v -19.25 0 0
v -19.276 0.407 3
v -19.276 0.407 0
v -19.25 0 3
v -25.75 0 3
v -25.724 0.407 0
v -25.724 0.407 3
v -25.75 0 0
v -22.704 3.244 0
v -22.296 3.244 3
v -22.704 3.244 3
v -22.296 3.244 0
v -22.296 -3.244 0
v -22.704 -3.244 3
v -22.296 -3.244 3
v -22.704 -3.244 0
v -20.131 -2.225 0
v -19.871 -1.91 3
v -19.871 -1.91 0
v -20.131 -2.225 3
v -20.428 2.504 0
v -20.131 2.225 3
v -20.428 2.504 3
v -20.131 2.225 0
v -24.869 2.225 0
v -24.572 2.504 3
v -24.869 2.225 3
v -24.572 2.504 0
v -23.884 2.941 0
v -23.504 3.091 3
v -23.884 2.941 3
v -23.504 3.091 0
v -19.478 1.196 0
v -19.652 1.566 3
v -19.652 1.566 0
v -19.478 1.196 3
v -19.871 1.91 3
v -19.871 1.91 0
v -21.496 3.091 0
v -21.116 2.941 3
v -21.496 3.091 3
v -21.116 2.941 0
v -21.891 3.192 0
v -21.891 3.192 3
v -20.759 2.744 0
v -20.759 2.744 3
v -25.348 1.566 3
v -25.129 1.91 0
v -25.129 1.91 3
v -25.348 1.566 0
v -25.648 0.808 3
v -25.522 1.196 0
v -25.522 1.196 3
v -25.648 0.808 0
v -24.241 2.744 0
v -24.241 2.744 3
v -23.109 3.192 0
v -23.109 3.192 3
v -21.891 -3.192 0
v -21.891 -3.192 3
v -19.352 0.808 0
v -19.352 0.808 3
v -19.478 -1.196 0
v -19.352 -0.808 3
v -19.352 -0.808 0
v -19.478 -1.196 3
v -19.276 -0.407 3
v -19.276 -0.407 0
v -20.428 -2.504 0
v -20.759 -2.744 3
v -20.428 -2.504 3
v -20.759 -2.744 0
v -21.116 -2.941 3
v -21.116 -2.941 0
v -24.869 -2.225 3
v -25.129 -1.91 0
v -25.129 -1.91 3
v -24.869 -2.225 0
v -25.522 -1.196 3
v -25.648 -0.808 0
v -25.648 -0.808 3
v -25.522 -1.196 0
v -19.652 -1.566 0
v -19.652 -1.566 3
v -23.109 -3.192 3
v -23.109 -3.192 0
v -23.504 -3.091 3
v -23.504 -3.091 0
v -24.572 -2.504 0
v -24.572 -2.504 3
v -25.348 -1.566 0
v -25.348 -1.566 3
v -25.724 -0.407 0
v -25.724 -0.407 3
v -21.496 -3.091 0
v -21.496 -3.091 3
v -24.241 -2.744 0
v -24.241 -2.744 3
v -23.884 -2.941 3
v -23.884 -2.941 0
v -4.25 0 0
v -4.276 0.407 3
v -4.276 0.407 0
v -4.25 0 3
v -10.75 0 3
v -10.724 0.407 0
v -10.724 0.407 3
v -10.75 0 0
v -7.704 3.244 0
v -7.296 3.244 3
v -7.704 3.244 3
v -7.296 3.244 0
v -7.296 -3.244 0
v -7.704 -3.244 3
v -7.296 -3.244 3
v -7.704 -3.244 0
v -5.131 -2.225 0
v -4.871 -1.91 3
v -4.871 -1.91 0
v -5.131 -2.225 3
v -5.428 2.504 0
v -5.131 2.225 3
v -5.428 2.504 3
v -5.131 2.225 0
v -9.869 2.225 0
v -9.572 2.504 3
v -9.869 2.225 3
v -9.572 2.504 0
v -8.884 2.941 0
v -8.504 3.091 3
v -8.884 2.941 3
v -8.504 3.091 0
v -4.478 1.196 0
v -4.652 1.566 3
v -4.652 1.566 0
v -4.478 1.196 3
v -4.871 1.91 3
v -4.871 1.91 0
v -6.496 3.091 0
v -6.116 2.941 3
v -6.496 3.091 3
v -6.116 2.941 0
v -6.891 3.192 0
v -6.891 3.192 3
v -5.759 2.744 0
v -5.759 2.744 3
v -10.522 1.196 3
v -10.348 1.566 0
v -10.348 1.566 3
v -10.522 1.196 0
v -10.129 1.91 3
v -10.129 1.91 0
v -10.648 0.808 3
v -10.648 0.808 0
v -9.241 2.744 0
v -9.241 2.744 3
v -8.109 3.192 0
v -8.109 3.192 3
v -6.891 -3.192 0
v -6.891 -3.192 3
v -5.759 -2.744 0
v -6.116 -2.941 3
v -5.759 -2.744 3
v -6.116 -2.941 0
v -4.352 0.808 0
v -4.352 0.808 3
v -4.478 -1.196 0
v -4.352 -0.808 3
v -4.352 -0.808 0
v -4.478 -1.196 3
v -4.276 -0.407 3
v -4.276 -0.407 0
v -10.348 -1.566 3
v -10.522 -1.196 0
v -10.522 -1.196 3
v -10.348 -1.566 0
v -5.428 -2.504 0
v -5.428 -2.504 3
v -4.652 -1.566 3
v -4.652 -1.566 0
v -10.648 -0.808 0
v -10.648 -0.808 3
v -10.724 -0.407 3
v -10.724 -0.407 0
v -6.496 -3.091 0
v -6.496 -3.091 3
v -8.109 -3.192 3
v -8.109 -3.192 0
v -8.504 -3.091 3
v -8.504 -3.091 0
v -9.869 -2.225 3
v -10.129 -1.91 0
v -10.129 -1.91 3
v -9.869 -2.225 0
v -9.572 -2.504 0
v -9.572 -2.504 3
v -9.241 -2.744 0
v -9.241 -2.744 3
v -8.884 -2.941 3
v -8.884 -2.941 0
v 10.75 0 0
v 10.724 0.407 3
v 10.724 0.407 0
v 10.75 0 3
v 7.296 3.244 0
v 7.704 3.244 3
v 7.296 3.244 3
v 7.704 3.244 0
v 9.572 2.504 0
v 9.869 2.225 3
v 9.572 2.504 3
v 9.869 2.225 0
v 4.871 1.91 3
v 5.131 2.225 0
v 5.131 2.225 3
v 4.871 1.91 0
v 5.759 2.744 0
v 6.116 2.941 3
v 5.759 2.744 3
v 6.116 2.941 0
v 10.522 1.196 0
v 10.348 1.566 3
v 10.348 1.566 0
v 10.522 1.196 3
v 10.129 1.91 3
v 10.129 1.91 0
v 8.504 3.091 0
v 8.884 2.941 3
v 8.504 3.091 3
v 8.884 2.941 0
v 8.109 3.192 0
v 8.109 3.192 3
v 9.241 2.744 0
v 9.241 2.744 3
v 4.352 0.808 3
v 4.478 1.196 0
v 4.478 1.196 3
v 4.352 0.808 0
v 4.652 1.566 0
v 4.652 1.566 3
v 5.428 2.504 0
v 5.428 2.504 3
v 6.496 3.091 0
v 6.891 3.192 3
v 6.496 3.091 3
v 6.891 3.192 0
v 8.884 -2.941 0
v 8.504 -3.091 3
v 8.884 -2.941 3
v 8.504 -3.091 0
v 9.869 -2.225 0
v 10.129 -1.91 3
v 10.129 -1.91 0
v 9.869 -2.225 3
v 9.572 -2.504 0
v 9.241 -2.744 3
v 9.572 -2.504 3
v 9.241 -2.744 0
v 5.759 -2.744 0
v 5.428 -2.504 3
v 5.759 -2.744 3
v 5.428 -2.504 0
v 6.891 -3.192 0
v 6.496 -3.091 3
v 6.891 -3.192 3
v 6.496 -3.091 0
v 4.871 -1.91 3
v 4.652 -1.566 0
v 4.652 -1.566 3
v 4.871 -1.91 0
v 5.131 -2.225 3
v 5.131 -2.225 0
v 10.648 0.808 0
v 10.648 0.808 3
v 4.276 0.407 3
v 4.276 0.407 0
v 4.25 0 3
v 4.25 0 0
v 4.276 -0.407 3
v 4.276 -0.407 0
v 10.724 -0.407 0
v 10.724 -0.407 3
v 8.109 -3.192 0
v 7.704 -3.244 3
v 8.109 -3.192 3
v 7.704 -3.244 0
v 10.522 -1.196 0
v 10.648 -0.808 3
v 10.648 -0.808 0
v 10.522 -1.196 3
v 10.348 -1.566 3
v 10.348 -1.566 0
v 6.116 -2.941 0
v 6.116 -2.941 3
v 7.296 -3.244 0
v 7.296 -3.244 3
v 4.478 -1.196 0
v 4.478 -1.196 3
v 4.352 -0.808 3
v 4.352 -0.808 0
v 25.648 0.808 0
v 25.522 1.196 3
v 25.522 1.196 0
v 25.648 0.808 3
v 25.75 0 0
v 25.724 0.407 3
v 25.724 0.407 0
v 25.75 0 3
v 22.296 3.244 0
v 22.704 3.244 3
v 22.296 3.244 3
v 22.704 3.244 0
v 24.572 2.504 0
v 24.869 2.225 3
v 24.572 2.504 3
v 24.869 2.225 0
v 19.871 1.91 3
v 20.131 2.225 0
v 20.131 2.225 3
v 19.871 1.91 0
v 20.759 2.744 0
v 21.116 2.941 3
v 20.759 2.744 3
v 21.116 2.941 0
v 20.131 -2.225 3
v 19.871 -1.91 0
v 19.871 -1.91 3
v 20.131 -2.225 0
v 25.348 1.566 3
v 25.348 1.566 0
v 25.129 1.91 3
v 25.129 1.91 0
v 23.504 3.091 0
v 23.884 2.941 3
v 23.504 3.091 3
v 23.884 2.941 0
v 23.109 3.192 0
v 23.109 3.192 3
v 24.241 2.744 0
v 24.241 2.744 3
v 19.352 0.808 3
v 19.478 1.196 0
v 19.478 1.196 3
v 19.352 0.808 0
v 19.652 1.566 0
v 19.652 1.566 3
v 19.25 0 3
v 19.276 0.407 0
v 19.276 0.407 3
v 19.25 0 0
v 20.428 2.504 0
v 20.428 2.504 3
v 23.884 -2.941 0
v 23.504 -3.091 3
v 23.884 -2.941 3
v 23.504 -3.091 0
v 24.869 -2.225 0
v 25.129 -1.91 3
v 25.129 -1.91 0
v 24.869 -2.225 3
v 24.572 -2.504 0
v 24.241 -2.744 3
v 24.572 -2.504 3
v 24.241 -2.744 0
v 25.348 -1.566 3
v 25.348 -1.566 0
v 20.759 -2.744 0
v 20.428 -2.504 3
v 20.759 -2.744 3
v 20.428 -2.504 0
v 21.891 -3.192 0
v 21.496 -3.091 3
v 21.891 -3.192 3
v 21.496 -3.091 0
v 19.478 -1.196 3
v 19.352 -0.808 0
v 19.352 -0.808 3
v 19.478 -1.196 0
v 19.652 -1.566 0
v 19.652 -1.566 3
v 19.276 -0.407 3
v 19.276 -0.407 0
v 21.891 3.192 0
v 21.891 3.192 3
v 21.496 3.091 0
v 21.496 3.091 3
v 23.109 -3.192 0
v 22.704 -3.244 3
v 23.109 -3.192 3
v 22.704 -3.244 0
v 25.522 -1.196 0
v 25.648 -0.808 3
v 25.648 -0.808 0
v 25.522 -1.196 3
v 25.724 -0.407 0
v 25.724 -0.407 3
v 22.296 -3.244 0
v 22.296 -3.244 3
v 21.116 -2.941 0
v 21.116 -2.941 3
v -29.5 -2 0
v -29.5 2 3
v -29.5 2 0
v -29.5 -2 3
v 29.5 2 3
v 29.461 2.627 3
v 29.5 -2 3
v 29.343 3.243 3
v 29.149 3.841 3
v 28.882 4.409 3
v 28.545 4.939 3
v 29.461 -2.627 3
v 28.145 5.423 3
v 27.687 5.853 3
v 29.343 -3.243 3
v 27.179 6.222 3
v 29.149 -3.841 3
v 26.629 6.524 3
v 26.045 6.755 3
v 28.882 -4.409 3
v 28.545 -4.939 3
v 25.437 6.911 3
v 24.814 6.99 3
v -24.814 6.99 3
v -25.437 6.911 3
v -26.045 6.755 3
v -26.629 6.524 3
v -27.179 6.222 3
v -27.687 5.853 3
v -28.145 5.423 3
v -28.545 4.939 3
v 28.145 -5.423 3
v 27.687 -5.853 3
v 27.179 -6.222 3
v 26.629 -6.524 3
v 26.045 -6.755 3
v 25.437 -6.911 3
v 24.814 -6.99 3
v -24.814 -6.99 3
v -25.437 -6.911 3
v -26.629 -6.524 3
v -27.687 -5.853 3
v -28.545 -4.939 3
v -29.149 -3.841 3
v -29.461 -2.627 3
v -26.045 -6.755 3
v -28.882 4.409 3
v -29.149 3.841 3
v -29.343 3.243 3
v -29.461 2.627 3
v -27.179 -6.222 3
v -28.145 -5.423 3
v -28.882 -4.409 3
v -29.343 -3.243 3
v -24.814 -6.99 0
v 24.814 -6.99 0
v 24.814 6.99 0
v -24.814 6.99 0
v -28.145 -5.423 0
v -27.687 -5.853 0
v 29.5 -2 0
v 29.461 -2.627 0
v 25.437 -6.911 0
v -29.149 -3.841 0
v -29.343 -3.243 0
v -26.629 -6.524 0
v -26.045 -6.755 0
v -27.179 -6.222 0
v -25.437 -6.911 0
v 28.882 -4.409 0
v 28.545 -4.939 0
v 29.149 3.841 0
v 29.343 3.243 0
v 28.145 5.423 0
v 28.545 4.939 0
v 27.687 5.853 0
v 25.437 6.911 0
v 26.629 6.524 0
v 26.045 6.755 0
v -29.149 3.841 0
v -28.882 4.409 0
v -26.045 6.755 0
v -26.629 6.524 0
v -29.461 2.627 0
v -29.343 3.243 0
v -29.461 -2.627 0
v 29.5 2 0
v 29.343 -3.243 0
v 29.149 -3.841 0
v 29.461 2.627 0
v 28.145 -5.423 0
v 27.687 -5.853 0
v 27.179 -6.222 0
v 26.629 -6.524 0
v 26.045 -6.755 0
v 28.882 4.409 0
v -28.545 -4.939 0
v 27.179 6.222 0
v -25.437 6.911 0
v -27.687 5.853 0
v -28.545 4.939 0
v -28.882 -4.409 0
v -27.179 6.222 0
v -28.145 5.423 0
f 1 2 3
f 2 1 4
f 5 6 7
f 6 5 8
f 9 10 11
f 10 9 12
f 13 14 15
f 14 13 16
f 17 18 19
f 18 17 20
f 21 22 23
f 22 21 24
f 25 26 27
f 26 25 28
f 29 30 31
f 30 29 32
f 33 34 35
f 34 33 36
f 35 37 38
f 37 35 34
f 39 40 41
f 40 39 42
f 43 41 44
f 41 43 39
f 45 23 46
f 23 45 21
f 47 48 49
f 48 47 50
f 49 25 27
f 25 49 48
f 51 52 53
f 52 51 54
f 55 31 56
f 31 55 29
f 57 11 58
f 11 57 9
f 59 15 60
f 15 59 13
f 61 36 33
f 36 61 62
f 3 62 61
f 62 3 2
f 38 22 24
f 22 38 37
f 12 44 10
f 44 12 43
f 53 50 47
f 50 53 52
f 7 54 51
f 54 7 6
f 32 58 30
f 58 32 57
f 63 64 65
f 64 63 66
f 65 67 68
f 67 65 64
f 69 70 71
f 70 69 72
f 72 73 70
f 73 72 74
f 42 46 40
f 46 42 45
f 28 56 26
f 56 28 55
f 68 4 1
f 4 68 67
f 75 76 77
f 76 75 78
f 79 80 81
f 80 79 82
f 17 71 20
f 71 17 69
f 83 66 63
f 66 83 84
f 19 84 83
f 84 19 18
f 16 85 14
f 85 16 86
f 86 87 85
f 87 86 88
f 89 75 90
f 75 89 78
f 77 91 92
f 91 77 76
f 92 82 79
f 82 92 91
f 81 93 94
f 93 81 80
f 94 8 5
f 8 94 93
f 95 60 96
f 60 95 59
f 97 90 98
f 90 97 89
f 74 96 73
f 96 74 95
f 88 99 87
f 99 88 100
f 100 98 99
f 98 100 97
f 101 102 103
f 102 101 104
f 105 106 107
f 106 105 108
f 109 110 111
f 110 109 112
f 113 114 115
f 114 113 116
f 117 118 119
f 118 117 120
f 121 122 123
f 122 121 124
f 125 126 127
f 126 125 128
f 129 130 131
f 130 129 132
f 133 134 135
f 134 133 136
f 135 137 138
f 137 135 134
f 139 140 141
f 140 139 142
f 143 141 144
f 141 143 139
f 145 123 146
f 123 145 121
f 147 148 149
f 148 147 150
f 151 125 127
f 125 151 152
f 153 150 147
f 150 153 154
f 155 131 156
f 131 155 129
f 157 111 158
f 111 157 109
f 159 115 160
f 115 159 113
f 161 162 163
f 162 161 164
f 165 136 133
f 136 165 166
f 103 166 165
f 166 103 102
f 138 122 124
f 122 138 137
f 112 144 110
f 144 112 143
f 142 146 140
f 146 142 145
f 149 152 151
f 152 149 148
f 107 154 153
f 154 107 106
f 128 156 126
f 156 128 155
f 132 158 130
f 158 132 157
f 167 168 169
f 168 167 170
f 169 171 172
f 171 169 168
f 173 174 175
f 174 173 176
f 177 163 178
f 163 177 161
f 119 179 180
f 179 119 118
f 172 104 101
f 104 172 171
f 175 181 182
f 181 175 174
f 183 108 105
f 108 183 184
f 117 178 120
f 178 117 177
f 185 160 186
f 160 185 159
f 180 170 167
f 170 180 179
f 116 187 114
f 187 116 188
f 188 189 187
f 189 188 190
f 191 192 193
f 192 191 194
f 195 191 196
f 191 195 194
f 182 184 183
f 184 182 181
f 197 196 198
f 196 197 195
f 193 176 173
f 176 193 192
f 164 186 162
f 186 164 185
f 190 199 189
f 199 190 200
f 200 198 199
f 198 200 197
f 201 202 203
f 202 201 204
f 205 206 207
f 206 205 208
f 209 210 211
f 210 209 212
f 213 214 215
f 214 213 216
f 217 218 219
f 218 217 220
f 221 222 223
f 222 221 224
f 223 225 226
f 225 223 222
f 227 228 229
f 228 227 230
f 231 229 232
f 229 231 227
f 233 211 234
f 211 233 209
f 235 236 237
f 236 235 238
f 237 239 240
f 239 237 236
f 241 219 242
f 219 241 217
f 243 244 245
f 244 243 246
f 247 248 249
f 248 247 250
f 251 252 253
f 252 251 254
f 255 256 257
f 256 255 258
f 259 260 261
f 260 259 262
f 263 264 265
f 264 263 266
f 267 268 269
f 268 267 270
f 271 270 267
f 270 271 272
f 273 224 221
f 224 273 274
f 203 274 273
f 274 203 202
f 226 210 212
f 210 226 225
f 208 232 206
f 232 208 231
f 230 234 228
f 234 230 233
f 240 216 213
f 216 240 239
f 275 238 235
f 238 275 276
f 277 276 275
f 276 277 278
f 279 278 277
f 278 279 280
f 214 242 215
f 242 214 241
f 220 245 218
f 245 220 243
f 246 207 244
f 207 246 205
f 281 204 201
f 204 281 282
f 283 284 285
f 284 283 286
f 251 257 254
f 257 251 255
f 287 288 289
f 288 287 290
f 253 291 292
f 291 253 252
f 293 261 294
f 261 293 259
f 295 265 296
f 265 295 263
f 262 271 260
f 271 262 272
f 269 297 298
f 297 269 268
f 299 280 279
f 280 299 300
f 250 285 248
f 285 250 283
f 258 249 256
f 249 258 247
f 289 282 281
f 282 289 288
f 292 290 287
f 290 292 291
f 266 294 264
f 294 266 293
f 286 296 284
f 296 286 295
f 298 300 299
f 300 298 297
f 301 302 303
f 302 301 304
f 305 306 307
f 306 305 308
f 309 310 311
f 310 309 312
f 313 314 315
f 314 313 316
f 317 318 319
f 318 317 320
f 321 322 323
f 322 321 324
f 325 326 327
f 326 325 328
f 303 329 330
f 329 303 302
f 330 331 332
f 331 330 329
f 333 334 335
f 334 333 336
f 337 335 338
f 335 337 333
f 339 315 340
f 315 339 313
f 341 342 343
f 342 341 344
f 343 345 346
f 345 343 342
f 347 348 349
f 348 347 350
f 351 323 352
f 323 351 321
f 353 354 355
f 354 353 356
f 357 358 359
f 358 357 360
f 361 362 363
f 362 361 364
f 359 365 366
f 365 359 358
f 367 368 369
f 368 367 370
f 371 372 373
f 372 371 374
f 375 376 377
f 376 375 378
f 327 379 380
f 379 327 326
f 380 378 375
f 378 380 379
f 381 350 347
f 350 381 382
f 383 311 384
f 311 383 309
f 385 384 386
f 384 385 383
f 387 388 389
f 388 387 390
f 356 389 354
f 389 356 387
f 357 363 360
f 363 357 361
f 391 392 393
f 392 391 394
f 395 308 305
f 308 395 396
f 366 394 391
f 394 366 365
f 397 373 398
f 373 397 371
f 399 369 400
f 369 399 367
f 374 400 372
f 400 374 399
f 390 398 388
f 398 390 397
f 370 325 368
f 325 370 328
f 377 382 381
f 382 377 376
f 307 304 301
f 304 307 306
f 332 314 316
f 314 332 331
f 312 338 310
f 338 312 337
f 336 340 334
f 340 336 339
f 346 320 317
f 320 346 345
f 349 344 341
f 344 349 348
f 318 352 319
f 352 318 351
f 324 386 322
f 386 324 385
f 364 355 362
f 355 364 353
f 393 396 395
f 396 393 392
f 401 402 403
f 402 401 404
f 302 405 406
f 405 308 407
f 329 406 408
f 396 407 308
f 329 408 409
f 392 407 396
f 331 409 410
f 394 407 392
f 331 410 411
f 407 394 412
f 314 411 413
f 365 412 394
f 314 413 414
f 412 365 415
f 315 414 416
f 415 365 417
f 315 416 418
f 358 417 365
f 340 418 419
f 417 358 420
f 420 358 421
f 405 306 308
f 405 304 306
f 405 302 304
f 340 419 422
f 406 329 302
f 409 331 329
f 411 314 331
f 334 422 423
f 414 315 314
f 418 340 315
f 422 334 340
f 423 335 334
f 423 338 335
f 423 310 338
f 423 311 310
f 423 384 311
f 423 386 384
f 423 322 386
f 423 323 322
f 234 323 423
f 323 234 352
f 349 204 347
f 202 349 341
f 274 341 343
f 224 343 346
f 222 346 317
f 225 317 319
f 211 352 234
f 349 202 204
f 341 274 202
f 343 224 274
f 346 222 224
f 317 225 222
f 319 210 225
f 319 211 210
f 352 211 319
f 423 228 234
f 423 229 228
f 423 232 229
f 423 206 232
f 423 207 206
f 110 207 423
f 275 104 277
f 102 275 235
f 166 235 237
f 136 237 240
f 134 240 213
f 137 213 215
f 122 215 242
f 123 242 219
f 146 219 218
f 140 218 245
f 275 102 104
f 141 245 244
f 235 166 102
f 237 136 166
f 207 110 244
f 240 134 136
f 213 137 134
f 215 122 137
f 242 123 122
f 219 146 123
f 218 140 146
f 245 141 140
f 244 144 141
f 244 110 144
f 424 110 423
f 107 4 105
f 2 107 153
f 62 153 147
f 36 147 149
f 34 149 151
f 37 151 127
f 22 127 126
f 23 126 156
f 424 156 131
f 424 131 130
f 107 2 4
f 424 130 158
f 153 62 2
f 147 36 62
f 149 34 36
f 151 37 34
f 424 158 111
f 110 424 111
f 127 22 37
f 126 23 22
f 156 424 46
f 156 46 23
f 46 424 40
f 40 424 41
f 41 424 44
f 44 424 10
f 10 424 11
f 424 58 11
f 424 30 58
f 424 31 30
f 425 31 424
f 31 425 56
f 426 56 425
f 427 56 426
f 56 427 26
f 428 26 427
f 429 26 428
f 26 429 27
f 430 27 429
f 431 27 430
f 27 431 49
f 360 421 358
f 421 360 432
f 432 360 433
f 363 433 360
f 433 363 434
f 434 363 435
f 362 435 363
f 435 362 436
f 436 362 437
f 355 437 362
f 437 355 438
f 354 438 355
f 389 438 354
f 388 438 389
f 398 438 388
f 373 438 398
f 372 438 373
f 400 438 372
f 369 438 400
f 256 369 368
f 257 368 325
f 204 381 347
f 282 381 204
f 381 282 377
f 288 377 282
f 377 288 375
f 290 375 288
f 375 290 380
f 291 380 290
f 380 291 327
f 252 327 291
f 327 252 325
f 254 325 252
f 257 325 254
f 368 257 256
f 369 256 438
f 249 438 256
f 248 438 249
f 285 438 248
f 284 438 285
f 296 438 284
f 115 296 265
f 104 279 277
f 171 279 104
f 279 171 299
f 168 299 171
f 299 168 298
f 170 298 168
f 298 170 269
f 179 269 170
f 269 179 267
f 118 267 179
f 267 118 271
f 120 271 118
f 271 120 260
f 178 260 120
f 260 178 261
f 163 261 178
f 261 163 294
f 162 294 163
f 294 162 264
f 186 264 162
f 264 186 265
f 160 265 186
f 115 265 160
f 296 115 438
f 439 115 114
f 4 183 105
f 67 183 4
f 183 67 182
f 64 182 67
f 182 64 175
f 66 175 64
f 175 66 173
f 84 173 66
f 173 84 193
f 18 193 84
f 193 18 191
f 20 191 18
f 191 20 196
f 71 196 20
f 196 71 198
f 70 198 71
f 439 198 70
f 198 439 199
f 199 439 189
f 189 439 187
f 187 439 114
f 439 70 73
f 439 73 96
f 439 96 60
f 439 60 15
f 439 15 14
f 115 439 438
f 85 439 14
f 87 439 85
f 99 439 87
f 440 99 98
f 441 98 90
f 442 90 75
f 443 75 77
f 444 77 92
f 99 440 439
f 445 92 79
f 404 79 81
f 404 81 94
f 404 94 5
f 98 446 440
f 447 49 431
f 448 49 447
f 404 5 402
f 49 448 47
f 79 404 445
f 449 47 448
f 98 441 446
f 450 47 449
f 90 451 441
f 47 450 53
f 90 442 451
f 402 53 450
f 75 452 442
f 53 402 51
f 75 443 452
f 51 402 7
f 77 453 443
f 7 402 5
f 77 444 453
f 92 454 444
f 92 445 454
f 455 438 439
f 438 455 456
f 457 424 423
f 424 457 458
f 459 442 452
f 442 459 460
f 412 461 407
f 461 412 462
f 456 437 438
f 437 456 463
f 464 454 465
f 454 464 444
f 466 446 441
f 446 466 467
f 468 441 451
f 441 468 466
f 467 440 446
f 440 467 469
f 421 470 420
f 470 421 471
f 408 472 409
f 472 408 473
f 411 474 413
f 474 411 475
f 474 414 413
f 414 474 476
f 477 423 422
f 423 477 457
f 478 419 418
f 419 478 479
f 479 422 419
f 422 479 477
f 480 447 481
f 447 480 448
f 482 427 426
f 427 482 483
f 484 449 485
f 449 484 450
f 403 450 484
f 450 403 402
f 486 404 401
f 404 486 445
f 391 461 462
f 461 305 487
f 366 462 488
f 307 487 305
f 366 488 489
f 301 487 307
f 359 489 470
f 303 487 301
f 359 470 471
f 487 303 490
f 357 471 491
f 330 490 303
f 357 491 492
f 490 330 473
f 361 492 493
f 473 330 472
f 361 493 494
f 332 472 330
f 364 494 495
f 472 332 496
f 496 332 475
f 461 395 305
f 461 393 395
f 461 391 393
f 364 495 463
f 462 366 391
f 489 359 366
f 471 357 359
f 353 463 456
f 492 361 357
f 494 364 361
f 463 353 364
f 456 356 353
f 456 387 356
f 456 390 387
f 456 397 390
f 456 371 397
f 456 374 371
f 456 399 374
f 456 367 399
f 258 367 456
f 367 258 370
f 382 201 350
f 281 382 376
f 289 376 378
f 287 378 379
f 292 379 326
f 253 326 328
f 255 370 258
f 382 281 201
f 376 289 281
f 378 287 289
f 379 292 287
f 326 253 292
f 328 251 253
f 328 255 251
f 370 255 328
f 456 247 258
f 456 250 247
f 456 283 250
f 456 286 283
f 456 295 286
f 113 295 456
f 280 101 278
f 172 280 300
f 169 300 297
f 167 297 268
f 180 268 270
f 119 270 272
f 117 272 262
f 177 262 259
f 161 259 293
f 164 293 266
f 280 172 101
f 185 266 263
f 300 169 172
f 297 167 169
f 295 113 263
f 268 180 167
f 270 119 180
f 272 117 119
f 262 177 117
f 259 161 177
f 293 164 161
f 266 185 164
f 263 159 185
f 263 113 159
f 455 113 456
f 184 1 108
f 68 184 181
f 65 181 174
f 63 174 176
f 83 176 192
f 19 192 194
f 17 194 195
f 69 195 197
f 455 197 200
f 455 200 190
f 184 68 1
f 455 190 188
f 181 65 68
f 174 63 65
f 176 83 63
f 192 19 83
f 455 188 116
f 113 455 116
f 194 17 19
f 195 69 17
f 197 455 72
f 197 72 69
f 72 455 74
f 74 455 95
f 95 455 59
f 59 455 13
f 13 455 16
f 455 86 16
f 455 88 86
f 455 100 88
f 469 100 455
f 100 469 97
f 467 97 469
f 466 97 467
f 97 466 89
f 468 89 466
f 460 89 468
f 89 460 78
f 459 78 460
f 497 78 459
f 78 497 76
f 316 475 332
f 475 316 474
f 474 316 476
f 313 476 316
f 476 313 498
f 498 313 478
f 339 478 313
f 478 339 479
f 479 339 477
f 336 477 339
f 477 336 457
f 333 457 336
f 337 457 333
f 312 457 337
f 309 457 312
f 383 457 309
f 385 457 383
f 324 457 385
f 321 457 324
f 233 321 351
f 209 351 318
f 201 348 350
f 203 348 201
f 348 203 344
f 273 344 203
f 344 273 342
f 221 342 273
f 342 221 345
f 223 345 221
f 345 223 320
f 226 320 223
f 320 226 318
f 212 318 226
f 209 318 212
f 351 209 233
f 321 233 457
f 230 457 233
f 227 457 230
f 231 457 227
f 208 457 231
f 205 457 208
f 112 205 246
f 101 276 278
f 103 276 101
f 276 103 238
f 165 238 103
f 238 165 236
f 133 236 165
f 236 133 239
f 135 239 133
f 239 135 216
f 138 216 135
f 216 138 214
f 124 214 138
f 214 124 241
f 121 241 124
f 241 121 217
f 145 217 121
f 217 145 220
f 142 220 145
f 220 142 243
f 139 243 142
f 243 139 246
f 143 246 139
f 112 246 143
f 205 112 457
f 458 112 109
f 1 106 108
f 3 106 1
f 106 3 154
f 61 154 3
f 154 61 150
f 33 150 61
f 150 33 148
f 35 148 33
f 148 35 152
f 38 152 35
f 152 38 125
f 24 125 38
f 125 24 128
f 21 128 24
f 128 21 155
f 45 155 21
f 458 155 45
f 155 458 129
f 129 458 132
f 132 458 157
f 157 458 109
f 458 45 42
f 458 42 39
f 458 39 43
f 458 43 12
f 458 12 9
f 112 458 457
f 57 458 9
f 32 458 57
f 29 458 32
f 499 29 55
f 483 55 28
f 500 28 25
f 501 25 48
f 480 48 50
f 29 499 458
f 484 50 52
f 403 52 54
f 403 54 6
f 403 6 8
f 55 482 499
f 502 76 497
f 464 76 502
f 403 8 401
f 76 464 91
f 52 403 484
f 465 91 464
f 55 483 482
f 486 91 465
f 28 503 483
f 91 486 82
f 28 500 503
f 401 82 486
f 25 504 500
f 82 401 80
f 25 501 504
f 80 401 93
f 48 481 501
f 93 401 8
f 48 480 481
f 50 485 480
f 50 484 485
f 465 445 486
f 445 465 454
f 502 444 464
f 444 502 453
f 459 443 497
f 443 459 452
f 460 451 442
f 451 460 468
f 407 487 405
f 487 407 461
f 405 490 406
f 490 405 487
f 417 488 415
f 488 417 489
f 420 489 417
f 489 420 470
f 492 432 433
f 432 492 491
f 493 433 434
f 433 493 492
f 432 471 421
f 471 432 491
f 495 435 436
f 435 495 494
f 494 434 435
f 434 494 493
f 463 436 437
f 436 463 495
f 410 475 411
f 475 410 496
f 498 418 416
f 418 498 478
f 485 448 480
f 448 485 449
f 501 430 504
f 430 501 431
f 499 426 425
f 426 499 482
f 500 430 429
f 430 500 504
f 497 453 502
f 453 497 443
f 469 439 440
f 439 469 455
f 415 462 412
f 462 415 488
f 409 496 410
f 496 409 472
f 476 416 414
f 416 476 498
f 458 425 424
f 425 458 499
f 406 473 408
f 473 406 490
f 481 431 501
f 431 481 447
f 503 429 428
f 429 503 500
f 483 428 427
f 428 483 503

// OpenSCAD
$fn = 50;


difference() {
	union() {
		hull() {
			translate(v = [-24.5000000000, 2.0000000000, 0]) {
				cylinder(h = 3, r = 5);
			}
			translate(v = [24.5000000000, 2.0000000000, 0]) {
				cylinder(h = 3, r = 5);
			}
			translate(v = [-24.5000000000, -2.0000000000, 0]) {
				cylinder(h = 3, r = 5);
			}
			translate(v = [24.5000000000, -2.0000000000, 0]) {
				cylinder(h = 3, r = 5);
			}
		}
	}
	union() {
		translate(v = [-22.5000000000, 0.0000000000, -100.0000000000]) {
			cylinder(h = 200, r = 3.2500000000);
		}
		translate(v = [-7.5000000000, 0.0000000000, -100.0000000000]) {
			cylinder(h = 200, r = 3.2500000000);
		}
		translate(v = [7.5000000000, 0.0000000000, -100.0000000000]) {
			cylinder(h = 200, r = 3.2500000000);
		}
		translate(v = [22.5000000000, 0.0000000000, -100.0000000000]) {
			cylinder(h = 200, r = 3.2500000000);
		}
	}
}
